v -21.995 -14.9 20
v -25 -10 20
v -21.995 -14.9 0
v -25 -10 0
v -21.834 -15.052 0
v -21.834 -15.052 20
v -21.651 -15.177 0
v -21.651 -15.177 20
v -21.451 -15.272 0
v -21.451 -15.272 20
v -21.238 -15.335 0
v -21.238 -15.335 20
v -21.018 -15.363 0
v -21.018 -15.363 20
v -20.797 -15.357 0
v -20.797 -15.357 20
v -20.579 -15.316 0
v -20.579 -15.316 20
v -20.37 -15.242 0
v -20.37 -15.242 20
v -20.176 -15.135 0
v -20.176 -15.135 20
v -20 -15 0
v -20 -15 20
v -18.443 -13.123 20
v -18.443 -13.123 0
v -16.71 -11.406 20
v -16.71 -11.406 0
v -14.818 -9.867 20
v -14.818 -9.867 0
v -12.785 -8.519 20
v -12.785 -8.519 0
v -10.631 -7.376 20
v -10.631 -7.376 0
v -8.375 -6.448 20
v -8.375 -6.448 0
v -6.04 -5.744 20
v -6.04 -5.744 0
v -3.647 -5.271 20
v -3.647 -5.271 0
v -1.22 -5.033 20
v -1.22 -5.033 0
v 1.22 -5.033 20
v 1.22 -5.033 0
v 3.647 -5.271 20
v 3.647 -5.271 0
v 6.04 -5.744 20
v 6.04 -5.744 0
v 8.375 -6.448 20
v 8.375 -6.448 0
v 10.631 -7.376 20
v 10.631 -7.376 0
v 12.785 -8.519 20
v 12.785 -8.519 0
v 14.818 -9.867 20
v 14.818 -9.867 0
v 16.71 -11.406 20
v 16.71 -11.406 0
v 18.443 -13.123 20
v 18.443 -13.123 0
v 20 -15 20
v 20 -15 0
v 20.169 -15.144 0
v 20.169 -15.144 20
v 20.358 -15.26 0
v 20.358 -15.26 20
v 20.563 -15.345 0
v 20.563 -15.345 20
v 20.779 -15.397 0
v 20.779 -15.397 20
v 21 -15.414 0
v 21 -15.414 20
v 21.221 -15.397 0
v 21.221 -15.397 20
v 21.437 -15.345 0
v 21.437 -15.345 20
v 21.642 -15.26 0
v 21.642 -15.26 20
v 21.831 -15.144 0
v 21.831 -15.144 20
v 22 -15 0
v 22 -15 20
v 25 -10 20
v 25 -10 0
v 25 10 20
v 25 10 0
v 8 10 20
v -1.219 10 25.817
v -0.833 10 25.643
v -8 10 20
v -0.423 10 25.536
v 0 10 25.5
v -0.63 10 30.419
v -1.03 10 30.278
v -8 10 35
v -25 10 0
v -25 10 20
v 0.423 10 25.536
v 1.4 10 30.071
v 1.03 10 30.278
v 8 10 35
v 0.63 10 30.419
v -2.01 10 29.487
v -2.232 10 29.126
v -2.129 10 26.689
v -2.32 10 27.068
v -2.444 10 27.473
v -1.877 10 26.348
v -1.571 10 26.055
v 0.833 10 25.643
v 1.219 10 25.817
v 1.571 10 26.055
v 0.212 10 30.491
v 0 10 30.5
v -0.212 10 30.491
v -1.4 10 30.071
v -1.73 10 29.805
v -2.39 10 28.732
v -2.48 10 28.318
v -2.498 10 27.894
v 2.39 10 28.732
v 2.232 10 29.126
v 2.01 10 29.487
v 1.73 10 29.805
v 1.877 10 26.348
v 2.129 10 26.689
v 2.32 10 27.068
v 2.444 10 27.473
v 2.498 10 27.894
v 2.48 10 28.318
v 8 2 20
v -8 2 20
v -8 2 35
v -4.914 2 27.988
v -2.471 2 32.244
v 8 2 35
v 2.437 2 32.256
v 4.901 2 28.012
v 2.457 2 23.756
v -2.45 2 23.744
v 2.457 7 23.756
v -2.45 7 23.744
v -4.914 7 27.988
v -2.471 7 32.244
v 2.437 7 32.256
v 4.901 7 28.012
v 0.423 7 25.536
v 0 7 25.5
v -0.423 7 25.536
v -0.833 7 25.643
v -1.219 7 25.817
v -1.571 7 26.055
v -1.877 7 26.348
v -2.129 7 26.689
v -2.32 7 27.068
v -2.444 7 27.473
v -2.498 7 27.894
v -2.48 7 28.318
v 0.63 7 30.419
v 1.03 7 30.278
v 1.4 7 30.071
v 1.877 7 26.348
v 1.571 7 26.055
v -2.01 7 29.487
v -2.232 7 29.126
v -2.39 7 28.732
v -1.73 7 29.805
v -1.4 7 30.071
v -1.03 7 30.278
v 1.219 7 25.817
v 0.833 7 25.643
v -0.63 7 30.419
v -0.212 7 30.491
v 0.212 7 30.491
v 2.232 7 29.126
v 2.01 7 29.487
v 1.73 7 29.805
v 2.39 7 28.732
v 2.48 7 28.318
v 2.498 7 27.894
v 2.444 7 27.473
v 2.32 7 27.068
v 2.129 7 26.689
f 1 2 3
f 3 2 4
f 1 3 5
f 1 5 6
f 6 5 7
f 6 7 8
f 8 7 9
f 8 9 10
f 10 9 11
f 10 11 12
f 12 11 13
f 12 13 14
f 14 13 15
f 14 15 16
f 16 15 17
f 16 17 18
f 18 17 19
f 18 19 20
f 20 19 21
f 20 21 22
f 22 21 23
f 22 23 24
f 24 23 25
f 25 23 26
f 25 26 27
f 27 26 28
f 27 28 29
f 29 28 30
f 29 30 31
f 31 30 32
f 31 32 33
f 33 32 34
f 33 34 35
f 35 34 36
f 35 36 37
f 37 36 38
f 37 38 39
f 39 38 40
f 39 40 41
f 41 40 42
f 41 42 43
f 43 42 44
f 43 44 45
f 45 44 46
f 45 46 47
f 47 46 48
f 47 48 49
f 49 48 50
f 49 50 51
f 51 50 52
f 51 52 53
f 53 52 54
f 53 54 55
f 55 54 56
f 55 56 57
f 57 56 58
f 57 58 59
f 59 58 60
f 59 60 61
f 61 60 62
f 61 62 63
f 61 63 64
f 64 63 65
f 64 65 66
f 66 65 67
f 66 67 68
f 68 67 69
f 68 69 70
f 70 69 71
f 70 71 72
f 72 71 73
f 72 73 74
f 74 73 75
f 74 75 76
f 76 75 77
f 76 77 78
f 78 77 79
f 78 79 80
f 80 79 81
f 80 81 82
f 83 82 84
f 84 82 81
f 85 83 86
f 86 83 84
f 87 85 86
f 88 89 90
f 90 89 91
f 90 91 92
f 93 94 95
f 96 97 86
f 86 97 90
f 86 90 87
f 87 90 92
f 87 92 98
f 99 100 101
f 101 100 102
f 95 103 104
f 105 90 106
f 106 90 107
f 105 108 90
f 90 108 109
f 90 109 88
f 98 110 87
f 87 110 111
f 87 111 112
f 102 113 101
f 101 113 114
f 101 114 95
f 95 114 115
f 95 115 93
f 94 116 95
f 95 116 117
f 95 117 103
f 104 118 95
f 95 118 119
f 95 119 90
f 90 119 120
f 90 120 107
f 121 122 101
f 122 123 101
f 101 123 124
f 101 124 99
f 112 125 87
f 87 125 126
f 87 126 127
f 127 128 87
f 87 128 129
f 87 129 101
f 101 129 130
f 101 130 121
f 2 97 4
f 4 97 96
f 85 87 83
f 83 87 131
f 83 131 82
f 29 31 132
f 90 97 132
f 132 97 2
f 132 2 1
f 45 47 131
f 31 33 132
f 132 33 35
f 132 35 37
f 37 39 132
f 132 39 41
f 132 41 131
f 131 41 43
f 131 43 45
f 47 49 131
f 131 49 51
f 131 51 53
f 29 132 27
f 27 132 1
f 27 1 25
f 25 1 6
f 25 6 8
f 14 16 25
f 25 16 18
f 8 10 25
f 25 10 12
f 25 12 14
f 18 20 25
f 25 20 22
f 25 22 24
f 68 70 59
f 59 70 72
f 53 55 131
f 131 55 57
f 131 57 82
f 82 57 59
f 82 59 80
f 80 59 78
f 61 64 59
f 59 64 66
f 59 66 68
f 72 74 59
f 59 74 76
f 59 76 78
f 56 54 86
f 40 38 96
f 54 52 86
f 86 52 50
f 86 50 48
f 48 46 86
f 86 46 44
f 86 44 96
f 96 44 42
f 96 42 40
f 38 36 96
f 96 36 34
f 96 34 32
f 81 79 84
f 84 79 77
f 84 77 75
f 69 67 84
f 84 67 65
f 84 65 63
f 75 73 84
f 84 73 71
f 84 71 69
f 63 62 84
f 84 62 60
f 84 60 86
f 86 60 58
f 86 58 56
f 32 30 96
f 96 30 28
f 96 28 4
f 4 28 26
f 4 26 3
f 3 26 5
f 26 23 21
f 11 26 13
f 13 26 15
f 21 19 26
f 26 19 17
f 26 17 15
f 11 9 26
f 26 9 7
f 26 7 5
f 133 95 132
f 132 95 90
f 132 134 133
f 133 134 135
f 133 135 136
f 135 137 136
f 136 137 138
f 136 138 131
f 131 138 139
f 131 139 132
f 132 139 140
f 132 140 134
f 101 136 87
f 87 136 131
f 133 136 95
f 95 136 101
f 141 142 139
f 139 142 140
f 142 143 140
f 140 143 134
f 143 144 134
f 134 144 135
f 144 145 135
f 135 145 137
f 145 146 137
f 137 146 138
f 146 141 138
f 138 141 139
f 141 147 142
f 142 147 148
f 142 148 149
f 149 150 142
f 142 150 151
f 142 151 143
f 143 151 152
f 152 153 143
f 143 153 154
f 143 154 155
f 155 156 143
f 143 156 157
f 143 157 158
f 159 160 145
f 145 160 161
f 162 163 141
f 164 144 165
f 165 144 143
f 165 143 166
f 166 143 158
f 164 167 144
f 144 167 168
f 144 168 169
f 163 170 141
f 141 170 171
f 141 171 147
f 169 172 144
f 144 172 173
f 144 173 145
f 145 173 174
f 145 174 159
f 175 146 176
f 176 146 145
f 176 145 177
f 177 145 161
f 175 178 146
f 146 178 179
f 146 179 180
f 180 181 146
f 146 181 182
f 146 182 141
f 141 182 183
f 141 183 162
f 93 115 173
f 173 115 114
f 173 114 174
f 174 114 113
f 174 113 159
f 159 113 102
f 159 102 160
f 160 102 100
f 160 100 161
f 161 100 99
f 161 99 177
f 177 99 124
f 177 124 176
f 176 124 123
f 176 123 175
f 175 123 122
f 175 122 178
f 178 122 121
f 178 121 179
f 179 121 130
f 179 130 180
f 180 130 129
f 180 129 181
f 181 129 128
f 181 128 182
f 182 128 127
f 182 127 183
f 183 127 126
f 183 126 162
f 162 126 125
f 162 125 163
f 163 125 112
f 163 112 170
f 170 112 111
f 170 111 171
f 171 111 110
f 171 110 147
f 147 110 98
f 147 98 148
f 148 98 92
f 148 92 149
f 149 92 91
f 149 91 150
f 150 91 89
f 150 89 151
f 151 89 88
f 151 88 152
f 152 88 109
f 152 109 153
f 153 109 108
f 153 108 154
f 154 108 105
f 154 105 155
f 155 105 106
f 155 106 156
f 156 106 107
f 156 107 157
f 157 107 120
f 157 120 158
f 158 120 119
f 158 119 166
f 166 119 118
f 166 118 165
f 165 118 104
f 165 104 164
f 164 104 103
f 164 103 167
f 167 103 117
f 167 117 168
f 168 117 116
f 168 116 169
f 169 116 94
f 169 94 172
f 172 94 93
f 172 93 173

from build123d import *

# Parameters (mm, degrees)
BOSS_EXTRUDE1_DEPTH = 20
BOSS_EXTRUDE2_DEPTH = 15
CUT_EXTRUDE1_DEPTH  = 5
SKETCH5_R           = 2.5
CUT_EXTRUDE2_DEPTH  = 3


with BuildPart() as part:
    # Sketch1 → Boss-Extrude1 (new body)
    with BuildSketch(Plane.XY):
        with BuildLine():
            Line((-25, 10), (25, 10))
            Line((25, 10), (25, -10))
            Line((25, -10), (22, -15))
            ThreePointArc((22, -15), (21, -15.414213562), (20, -15))
            ThreePointArc((20, -15), (0, -5.003320801), (-20, -15))
            ThreePointArc((-20, -15), (-21.018204397, -15.363175427), (-21.994987437, -14.9))
            Line((-21.994987437, -14.9), (-25, -10))
            Line((-25, -10), (-25, 10))
        make_face()
    extrude(amount=BOSS_EXTRUDE1_DEPTH)

    # Sketch2 → Boss-Extrude2 (add)
    with BuildSketch(Plane.XY.offset(20)):
        Polygon((0, 10), (-8, 10), (-8, 2), (8, 2), (8, 10), align=None)
    extrude(amount=BOSS_EXTRUDE2_DEPTH)

    # Sketch4 → Cut-Extrude1 (cut)
    with BuildSketch(Plane.XZ.offset(-2)):
        Polygon((2.457286371, 23.755949434), (4.900734659, 28.011873987), (2.436720023, 32.255924553), (-2.4707429, 32.244050566), (-4.914191188, 27.988126013), (-2.450176552, 23.744075447), align=None)
    extrude(amount=-CUT_EXTRUDE1_DEPTH, mode=Mode.SUBTRACT)

    # Sketch5 → Cut-Extrude2 (cut)
    with BuildSketch(Plane.XZ.offset(-7)):
        with Locations((0, 28.00001244)):
            Circle(SKETCH5_R)
    extrude(amount=-CUT_EXTRUDE2_DEPTH, mode=Mode.SUBTRACT)


solid = part.part
